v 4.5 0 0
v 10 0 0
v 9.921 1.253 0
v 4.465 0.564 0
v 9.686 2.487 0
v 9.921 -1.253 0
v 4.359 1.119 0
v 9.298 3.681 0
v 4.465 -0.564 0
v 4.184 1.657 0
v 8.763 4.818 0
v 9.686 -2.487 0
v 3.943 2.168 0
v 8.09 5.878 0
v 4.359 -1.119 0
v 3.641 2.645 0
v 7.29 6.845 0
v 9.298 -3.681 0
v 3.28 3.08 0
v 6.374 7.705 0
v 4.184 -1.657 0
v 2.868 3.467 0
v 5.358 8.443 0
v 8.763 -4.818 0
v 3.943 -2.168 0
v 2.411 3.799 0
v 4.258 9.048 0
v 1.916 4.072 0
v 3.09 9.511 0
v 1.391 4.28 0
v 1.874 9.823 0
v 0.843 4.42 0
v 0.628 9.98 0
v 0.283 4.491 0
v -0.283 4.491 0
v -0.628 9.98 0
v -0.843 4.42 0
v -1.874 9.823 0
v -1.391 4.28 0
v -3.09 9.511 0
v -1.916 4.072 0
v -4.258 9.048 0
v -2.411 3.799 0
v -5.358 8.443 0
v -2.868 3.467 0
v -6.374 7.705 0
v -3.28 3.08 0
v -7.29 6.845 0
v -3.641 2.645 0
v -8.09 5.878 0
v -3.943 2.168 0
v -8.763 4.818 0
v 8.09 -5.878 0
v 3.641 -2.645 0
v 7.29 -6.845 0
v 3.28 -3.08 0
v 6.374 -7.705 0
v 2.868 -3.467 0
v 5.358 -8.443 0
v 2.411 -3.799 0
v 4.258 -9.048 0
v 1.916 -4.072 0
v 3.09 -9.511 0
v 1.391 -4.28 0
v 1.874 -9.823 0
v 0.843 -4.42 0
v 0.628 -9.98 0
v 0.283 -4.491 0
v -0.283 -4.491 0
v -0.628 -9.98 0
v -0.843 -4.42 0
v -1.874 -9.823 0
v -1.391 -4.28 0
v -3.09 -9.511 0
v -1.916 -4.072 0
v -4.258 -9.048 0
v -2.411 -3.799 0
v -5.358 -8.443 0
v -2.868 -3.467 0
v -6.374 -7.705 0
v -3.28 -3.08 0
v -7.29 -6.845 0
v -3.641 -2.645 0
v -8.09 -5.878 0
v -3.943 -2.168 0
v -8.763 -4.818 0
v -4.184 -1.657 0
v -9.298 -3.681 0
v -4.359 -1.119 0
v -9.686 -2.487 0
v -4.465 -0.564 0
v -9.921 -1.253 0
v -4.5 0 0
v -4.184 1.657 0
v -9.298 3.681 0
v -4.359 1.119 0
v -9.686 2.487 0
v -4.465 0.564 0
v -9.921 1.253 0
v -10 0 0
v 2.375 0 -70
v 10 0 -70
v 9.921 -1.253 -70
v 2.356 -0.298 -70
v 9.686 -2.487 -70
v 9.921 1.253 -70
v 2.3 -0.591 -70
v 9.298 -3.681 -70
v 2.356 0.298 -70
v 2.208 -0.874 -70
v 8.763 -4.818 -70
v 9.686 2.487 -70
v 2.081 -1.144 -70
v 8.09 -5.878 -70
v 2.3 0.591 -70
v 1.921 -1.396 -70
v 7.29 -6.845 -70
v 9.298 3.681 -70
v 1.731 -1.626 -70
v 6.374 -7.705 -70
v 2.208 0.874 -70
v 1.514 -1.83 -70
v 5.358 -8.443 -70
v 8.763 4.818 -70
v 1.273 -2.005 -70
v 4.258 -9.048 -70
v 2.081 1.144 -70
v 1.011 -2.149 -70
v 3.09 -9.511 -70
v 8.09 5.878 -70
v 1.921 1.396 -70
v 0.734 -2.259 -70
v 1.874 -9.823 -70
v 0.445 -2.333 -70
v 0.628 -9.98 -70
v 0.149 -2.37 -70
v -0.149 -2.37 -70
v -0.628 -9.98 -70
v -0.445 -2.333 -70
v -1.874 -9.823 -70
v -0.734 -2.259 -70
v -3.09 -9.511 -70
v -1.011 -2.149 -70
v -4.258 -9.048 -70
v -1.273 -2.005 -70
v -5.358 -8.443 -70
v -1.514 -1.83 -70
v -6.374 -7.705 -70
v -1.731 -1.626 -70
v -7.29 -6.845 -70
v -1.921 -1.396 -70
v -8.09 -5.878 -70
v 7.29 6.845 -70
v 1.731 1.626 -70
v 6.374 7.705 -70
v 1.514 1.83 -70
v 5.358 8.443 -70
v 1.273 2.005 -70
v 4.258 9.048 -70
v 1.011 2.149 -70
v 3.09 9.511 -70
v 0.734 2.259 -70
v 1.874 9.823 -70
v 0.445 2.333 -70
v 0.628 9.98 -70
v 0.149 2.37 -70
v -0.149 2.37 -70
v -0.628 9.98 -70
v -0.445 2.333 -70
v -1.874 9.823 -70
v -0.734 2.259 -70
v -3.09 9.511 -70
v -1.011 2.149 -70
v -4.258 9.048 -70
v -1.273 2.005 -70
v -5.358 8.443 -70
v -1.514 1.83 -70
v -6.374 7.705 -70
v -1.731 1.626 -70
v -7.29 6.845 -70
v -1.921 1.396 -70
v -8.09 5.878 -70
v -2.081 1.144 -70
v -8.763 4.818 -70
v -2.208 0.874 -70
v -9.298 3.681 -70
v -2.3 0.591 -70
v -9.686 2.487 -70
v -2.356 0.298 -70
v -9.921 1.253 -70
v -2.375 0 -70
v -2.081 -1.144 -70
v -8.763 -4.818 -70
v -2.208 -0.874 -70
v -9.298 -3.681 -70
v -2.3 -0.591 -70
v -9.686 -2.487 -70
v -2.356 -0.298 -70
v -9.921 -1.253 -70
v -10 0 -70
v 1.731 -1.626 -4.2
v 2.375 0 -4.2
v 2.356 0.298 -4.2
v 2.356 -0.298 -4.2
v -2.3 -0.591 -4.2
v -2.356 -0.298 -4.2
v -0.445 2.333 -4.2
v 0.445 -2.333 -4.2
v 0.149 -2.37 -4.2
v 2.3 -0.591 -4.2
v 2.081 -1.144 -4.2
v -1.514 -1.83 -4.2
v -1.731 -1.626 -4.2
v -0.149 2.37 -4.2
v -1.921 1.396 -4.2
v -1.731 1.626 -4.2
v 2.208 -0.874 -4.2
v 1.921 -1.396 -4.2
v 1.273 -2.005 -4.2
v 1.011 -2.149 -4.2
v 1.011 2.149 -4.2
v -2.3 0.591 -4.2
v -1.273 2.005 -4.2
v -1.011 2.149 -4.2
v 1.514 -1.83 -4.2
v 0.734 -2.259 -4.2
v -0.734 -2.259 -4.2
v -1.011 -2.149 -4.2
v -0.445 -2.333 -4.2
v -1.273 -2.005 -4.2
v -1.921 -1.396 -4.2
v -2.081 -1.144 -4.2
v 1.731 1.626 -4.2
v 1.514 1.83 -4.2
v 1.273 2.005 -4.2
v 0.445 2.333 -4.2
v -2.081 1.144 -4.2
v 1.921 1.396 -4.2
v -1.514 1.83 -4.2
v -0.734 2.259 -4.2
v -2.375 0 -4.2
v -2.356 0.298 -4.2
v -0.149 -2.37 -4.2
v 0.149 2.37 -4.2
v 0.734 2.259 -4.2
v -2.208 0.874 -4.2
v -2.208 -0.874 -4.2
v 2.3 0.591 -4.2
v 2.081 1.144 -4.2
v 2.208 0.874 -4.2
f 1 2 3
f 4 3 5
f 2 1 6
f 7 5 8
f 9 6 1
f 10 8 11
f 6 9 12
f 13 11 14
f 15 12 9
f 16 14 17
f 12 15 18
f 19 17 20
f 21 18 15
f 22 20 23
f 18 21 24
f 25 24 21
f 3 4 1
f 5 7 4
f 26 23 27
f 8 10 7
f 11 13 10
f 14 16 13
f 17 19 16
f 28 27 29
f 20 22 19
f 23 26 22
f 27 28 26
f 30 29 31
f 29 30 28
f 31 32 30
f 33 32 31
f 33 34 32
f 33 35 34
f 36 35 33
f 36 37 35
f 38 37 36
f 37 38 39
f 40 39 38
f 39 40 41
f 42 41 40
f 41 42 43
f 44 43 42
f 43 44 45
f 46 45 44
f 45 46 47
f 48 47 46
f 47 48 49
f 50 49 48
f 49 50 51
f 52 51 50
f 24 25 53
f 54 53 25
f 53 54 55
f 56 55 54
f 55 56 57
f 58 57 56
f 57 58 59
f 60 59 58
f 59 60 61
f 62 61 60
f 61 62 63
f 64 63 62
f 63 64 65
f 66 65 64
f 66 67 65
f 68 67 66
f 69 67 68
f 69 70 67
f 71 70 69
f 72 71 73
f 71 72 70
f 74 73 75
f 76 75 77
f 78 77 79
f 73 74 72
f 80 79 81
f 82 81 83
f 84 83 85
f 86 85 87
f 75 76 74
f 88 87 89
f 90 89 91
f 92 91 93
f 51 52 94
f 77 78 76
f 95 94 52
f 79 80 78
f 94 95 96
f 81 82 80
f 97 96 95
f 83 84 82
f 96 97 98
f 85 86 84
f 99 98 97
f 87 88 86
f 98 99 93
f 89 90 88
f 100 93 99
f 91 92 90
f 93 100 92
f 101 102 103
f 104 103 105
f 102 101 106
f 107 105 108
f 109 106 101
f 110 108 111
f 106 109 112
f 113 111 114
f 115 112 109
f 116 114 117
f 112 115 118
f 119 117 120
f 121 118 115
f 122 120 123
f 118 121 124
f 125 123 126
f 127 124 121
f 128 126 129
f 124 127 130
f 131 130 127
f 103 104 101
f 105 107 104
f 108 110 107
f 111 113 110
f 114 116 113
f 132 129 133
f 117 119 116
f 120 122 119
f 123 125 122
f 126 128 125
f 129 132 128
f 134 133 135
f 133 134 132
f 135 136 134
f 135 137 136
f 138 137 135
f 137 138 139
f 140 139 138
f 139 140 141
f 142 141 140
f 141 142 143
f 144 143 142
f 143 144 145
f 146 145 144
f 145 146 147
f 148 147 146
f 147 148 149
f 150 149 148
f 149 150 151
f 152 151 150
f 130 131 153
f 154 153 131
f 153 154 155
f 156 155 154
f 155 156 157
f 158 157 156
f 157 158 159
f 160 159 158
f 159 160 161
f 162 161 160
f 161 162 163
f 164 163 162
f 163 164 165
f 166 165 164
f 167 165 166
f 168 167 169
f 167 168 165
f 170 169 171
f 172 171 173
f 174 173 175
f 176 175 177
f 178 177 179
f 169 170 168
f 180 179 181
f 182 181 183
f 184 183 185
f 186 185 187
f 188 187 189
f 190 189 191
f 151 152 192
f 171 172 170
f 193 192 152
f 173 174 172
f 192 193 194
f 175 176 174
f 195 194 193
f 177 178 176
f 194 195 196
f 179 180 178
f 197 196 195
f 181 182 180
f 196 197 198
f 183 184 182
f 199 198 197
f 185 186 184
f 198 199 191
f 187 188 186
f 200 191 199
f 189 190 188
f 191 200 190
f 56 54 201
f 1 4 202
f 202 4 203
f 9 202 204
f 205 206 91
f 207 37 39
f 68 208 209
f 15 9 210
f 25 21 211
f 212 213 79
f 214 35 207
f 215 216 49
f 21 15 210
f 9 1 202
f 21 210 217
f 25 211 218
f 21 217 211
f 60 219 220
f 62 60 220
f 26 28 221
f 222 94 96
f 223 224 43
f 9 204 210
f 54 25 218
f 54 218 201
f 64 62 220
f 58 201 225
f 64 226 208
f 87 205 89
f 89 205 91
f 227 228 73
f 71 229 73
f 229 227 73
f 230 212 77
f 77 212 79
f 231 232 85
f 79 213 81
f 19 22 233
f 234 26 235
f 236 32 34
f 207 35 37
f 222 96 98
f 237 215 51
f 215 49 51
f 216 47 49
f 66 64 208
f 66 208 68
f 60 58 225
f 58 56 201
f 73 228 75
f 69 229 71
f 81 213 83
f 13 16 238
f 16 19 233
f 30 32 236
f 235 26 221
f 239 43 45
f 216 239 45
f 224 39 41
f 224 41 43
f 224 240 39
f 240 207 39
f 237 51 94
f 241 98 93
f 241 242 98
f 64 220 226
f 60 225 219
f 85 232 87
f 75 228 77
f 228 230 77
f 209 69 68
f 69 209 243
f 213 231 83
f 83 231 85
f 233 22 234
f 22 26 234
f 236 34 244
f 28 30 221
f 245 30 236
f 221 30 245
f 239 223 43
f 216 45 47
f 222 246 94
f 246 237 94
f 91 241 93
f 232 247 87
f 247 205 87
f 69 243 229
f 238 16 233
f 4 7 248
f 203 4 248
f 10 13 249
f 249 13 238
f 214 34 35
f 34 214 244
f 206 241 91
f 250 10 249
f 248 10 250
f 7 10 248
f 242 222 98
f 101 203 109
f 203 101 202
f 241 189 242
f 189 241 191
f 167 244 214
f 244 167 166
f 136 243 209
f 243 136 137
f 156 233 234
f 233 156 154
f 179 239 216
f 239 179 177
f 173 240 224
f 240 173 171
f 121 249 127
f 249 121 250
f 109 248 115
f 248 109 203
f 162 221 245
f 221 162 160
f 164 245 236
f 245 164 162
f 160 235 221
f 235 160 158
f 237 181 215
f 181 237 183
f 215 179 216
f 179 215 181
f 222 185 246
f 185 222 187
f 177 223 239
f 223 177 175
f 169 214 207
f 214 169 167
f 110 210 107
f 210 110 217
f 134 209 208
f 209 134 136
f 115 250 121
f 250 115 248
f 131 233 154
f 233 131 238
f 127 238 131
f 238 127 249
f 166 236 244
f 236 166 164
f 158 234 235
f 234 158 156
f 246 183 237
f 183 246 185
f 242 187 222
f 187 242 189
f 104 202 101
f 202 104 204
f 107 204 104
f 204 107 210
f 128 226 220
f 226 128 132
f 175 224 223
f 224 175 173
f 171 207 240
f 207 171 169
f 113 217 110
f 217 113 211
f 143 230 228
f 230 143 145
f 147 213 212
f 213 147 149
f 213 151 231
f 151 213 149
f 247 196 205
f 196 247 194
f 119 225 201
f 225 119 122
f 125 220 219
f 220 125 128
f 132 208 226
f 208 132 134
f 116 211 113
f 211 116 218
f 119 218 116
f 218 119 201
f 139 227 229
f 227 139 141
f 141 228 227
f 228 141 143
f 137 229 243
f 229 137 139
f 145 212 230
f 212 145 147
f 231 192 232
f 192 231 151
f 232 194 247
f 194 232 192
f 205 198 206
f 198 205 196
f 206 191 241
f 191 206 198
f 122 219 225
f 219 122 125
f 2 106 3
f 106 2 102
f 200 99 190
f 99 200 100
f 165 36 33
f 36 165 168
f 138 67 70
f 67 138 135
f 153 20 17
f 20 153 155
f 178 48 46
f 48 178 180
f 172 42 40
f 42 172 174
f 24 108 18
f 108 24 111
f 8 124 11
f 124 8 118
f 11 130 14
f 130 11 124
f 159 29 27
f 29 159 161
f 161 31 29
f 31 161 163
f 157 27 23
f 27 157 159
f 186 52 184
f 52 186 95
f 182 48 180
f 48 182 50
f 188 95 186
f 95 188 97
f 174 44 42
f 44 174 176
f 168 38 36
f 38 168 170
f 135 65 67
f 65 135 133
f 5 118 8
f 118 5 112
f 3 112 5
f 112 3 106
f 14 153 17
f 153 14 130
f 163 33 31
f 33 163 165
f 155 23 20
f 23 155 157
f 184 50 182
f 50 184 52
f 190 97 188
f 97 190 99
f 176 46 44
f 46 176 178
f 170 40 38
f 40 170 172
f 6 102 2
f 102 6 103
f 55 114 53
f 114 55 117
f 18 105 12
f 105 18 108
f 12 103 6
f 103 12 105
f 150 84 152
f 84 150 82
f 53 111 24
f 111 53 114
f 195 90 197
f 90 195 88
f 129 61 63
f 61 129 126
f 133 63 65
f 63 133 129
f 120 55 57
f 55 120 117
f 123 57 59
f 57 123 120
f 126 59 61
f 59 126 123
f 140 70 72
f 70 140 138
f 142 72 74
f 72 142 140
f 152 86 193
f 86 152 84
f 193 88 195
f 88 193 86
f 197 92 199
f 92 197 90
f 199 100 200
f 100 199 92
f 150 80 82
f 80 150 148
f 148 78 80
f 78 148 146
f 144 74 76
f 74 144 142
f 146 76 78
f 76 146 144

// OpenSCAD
$fn = 50;


difference() {
	union() {
		translate(v = [0, 0, -70.0000000000]) {
			cylinder(h = 70, r = 10.0000000000);
		}
	}
	union() {
		translate(v = [0, 0, 0]) {
			rotate(a = [0, 0, 0]) {
				difference() {
					union() {
						#translate(v = [0, 0, -70.0000000000]) {
							cylinder(h = 70, r = 2.2500000000);
						}
						#translate(v = [0, 0, -4.2000000000]) {
							cylinder(h = 4.2000000000, r = 10.0000000000, r1 = 2.3750000000, r2 = 4.5000000000);
						}
						#translate(v = [0, 0, -70.0000000000]) {
							cylinder(h = 70, r = 2.3750000000);
						}
						#translate(v = [0, 0, -70.0000000000]) {
							cylinder(h = 70, r = 2.2500000000);
						}
					}
					union();
				}
			}
		}
	}
}
